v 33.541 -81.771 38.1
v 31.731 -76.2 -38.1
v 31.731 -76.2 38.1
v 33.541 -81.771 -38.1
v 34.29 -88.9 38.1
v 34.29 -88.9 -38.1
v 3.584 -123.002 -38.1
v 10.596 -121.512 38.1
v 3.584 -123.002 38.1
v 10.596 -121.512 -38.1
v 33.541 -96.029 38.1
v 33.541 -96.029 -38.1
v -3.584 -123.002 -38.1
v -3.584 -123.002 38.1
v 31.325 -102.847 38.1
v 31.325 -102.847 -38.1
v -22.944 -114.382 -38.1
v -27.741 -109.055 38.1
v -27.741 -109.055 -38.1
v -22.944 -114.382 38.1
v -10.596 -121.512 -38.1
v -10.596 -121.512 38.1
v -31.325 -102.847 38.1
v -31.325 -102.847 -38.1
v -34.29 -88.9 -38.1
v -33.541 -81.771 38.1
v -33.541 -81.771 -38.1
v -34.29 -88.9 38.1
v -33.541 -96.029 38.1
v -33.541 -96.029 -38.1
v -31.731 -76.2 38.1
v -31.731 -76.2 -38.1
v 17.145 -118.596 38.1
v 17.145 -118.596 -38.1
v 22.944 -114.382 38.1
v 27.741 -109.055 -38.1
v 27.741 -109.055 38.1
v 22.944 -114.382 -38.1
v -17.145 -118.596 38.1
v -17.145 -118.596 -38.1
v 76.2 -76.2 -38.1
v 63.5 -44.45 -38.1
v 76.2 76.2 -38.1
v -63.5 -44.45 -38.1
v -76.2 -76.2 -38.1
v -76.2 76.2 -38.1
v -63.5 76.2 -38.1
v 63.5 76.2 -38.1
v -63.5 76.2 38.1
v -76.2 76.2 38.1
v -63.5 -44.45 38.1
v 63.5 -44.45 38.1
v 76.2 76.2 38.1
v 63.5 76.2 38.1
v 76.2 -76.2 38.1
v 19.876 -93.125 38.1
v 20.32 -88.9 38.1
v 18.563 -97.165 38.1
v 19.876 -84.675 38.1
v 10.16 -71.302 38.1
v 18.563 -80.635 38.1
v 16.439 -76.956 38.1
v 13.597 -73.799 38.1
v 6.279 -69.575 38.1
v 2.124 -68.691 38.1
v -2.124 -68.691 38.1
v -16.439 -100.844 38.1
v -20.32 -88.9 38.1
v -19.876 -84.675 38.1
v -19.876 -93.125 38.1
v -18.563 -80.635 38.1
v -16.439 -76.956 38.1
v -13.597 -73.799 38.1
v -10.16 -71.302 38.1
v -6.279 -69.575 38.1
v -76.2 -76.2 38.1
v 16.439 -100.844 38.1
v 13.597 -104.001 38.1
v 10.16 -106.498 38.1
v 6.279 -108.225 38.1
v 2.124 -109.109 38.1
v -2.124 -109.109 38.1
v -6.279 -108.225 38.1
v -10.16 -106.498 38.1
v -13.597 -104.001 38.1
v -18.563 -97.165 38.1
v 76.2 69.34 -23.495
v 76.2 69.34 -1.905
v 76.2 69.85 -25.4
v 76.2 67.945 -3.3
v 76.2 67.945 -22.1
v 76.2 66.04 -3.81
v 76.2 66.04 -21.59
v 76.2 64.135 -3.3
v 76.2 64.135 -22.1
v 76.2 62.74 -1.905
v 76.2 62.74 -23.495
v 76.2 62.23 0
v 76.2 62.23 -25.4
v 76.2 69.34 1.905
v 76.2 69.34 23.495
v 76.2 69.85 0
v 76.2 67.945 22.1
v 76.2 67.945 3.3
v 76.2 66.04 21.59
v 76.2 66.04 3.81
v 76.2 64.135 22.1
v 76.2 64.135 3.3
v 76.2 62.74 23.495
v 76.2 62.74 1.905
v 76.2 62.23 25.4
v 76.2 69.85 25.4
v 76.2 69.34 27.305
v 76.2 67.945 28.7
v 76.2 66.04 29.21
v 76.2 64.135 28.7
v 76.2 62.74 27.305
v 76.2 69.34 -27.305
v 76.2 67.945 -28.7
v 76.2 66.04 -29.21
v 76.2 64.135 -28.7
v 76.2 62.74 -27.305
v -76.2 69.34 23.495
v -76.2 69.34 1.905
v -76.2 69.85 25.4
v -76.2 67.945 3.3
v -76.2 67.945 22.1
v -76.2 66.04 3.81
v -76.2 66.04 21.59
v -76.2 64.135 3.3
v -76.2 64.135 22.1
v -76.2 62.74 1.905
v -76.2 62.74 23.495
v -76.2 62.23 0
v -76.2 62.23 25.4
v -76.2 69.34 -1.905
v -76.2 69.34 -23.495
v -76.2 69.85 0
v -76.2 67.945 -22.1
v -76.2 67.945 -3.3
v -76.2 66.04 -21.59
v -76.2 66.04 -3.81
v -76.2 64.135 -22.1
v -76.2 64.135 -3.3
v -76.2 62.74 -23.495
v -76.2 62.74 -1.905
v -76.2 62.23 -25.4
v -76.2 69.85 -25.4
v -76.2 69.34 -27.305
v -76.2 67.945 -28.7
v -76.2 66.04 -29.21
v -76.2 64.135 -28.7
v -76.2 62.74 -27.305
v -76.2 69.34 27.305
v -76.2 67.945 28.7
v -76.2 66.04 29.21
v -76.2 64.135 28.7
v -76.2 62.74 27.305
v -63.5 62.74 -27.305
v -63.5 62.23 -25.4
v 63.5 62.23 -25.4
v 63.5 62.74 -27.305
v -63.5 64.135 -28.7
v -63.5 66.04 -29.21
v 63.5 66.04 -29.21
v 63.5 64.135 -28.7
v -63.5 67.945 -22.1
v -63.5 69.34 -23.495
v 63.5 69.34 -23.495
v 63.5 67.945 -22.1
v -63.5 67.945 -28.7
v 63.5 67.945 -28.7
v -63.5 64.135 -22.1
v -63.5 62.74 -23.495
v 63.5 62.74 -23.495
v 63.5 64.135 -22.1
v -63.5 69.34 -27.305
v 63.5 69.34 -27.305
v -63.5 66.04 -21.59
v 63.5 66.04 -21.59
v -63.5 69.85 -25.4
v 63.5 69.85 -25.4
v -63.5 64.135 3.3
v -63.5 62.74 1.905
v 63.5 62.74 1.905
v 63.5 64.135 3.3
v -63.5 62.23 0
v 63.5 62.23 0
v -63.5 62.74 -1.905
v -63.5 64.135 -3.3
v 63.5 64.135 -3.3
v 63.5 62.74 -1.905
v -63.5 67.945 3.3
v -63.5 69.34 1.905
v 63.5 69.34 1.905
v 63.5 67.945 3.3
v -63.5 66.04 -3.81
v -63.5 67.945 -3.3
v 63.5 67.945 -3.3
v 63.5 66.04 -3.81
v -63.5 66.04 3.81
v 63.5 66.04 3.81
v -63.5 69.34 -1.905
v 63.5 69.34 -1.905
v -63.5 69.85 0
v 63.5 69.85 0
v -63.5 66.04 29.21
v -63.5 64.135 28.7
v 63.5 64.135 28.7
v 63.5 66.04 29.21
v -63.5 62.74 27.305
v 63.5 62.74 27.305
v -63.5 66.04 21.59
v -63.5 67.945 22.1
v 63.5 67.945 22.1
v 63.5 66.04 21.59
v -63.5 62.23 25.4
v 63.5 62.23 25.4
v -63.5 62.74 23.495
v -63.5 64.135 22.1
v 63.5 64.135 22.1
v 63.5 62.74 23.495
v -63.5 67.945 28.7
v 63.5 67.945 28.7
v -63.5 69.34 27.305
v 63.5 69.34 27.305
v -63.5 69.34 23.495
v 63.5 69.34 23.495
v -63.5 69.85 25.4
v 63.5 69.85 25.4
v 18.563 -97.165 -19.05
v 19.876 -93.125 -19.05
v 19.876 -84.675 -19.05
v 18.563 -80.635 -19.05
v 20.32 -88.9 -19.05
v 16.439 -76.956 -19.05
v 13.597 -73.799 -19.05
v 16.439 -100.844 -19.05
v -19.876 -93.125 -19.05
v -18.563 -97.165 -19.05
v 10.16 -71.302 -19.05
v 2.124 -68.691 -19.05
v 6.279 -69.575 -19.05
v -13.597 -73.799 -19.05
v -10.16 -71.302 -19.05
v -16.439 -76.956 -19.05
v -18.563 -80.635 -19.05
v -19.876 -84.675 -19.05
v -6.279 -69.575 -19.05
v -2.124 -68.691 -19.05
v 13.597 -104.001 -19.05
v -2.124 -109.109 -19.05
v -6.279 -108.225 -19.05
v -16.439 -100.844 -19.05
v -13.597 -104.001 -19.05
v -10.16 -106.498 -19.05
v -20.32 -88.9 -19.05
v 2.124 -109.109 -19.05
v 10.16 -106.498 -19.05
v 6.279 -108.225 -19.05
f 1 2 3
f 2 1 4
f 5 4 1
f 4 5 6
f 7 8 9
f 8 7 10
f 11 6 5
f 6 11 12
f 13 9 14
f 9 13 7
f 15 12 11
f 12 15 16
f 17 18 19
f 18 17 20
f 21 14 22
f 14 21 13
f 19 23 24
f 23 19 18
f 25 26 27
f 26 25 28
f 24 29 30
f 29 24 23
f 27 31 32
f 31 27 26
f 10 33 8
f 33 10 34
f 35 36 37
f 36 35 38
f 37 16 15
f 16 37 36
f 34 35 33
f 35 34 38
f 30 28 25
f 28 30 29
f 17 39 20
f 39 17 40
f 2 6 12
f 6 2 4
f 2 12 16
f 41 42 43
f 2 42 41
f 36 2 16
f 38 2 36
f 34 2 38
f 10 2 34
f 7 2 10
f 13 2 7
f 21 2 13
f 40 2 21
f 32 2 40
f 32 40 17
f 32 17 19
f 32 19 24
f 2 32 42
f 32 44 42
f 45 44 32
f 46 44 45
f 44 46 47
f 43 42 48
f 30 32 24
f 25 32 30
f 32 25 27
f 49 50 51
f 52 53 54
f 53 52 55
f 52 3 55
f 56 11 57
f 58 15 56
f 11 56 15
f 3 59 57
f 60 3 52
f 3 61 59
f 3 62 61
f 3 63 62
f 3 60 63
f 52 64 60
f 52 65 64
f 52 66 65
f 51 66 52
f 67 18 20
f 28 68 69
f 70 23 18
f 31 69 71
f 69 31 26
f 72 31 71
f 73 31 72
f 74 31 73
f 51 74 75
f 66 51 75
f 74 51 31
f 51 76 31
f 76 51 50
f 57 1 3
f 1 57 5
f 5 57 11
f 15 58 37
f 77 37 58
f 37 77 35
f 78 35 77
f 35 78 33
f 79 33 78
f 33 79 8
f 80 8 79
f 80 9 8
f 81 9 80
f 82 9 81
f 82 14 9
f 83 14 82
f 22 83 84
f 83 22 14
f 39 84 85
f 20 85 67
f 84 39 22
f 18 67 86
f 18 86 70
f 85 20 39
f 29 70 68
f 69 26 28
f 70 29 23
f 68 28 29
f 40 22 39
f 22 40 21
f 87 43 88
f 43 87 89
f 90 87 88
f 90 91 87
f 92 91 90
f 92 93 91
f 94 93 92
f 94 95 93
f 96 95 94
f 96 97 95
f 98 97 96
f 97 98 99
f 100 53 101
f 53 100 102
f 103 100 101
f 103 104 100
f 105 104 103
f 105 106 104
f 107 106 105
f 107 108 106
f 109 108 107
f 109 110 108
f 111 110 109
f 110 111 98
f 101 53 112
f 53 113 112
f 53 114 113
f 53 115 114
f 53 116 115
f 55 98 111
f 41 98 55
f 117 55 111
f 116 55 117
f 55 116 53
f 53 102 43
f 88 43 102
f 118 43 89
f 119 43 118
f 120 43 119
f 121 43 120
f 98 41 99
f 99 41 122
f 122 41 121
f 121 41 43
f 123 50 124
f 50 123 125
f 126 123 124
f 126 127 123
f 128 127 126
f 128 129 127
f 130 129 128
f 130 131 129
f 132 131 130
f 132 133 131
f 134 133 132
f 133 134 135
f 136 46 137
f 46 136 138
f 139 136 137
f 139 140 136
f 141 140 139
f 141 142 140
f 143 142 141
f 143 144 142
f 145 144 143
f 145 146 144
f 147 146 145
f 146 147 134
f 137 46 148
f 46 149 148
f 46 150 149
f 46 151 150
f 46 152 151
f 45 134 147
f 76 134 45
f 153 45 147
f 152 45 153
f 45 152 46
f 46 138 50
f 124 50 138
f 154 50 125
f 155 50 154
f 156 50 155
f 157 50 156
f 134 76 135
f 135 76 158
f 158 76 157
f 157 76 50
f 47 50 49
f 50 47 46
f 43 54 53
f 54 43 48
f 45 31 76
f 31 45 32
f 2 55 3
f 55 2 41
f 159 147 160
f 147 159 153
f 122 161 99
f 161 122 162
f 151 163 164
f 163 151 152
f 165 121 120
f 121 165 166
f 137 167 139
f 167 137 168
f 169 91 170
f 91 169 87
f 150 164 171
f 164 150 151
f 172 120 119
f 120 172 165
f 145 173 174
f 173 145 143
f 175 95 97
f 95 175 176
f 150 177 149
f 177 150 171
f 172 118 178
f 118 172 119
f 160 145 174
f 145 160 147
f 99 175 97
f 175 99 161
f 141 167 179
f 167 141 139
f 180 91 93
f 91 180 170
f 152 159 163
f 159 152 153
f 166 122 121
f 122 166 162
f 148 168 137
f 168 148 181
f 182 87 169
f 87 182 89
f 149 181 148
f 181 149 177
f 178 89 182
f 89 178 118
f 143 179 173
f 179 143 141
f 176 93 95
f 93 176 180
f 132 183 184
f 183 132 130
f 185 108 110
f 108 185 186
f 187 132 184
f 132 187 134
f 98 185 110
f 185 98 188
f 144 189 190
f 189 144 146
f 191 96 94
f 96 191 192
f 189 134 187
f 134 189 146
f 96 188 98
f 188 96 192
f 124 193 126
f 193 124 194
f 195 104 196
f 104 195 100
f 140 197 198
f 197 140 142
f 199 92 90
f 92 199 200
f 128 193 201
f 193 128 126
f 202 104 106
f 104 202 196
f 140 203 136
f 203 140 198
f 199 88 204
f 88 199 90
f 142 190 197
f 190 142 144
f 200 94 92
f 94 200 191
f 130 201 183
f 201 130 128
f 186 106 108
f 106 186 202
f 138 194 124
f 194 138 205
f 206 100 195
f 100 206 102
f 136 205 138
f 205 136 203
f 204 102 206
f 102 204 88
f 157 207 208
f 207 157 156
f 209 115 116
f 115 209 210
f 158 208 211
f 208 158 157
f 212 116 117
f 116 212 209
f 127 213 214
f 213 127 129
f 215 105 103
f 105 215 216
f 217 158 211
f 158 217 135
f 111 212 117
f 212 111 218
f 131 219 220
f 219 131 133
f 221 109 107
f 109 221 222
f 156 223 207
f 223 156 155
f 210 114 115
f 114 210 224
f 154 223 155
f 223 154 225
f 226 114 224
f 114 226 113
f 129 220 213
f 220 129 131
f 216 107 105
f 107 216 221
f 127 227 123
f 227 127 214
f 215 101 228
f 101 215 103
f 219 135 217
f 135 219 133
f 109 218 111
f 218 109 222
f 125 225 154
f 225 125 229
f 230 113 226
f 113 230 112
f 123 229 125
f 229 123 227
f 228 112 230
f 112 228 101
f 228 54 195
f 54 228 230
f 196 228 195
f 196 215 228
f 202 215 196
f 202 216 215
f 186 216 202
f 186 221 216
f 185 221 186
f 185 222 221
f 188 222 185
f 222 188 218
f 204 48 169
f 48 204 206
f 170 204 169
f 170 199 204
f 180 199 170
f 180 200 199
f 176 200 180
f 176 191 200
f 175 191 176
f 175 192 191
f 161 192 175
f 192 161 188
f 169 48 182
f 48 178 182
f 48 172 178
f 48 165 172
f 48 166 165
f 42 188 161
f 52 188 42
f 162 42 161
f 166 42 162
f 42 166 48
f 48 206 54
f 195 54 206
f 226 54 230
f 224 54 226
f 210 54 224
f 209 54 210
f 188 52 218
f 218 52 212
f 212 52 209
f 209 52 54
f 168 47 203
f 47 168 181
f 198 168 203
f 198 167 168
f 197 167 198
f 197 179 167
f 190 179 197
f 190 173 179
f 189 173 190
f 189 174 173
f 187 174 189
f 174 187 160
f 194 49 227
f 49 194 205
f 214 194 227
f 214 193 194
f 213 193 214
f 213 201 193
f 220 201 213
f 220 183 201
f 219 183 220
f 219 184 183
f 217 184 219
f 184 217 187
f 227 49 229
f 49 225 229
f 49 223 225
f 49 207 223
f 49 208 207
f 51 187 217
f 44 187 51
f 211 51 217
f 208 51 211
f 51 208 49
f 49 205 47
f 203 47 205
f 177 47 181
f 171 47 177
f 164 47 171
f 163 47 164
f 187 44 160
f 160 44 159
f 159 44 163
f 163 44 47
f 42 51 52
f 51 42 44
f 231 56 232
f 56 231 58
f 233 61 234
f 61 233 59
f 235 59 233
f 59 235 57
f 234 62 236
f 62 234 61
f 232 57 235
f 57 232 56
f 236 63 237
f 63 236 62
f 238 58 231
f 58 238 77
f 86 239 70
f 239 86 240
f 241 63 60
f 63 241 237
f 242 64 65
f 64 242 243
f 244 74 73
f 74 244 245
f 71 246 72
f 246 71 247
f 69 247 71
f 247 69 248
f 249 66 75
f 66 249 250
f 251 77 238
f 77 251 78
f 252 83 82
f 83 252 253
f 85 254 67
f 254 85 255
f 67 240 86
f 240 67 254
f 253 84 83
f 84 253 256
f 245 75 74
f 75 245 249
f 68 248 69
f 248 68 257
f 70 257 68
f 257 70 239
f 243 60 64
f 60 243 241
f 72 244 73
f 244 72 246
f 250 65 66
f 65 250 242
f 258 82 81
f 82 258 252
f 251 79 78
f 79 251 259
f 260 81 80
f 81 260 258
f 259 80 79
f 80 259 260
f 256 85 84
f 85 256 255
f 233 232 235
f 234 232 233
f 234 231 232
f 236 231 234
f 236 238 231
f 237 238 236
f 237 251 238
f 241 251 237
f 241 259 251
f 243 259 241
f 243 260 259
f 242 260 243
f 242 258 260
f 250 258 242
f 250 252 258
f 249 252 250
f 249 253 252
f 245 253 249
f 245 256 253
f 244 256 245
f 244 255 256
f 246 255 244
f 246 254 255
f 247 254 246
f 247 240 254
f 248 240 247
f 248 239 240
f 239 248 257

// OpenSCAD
// 25.4mm is 1.25inch
scale = 25.4;
//z=2*scale;

z=3*scale;
x=6*scale;
y=6*scale;

// Ray's is .75 for radius_inner
radius_inner = .8*scale;
radius_outer = 1.35*scale;

zip_tie_radius_inner = .15*scale;
zip_tie_radius_outer = .3*scale;

module base(){
    translate([0,-3.50*scale,0]) cylinder(r=radius_outer,h=z,center=true);
    cube(size = [x,y,z], center = true);
}


module poleCutOut(){
    translate([0,-3.5*scale,.5*scale]) cylinder(r=radius_inner,h=z-.5*scale,center=true);    
}

module zipTieCutOut(){
    translate([0, 2.6*scale,-1*scale]) rotate(90,[0,1,0]) cylinder(r=zip_tie_radius_inner, h=7*scale,center=true);
    translate([0, 2.6*scale,0]) rotate(90,[0,1,0]) cylinder(r=zip_tie_radius_inner, h=7*scale,center=true);
    translate([0, 2.6*scale,1*scale]) rotate(90,[0,1,0]) cylinder(r=zip_tie_radius_inner, h=7*scale,center=true);
}

module cutOut(){
    translate([0,1*scale,0]) cube(size = [x-1*scale, y-.5*scale, z], center = true);
}

module prism(l, w, h){
   polyhedron(
           points=[[0,0,0], [l,0,0], [l,w,0], [0,w,0], [0,w,h], [l,w,h]],
           faces=[[0,1,2,3],[5,4,3,2],[0,4,5,1],[0,3,4],[5,2,1]]
           );
}

// The intention of this was to provide a low hanging stability support if the umbrella slides
module support(){
    translate([-3*scale,-3*scale,-3.5*scale]) rotate(90, [1,0,0]) prism(6*scale,5*scale,3*scale);
}

/*
// The problem with this part is that the print is difficult without supports
difference(){
    support();
    poleCutOut();
}*/

// Make the mount
difference(){
    base();
    cutOut();
    poleCutOut();
    zipTieCutOut();
}
